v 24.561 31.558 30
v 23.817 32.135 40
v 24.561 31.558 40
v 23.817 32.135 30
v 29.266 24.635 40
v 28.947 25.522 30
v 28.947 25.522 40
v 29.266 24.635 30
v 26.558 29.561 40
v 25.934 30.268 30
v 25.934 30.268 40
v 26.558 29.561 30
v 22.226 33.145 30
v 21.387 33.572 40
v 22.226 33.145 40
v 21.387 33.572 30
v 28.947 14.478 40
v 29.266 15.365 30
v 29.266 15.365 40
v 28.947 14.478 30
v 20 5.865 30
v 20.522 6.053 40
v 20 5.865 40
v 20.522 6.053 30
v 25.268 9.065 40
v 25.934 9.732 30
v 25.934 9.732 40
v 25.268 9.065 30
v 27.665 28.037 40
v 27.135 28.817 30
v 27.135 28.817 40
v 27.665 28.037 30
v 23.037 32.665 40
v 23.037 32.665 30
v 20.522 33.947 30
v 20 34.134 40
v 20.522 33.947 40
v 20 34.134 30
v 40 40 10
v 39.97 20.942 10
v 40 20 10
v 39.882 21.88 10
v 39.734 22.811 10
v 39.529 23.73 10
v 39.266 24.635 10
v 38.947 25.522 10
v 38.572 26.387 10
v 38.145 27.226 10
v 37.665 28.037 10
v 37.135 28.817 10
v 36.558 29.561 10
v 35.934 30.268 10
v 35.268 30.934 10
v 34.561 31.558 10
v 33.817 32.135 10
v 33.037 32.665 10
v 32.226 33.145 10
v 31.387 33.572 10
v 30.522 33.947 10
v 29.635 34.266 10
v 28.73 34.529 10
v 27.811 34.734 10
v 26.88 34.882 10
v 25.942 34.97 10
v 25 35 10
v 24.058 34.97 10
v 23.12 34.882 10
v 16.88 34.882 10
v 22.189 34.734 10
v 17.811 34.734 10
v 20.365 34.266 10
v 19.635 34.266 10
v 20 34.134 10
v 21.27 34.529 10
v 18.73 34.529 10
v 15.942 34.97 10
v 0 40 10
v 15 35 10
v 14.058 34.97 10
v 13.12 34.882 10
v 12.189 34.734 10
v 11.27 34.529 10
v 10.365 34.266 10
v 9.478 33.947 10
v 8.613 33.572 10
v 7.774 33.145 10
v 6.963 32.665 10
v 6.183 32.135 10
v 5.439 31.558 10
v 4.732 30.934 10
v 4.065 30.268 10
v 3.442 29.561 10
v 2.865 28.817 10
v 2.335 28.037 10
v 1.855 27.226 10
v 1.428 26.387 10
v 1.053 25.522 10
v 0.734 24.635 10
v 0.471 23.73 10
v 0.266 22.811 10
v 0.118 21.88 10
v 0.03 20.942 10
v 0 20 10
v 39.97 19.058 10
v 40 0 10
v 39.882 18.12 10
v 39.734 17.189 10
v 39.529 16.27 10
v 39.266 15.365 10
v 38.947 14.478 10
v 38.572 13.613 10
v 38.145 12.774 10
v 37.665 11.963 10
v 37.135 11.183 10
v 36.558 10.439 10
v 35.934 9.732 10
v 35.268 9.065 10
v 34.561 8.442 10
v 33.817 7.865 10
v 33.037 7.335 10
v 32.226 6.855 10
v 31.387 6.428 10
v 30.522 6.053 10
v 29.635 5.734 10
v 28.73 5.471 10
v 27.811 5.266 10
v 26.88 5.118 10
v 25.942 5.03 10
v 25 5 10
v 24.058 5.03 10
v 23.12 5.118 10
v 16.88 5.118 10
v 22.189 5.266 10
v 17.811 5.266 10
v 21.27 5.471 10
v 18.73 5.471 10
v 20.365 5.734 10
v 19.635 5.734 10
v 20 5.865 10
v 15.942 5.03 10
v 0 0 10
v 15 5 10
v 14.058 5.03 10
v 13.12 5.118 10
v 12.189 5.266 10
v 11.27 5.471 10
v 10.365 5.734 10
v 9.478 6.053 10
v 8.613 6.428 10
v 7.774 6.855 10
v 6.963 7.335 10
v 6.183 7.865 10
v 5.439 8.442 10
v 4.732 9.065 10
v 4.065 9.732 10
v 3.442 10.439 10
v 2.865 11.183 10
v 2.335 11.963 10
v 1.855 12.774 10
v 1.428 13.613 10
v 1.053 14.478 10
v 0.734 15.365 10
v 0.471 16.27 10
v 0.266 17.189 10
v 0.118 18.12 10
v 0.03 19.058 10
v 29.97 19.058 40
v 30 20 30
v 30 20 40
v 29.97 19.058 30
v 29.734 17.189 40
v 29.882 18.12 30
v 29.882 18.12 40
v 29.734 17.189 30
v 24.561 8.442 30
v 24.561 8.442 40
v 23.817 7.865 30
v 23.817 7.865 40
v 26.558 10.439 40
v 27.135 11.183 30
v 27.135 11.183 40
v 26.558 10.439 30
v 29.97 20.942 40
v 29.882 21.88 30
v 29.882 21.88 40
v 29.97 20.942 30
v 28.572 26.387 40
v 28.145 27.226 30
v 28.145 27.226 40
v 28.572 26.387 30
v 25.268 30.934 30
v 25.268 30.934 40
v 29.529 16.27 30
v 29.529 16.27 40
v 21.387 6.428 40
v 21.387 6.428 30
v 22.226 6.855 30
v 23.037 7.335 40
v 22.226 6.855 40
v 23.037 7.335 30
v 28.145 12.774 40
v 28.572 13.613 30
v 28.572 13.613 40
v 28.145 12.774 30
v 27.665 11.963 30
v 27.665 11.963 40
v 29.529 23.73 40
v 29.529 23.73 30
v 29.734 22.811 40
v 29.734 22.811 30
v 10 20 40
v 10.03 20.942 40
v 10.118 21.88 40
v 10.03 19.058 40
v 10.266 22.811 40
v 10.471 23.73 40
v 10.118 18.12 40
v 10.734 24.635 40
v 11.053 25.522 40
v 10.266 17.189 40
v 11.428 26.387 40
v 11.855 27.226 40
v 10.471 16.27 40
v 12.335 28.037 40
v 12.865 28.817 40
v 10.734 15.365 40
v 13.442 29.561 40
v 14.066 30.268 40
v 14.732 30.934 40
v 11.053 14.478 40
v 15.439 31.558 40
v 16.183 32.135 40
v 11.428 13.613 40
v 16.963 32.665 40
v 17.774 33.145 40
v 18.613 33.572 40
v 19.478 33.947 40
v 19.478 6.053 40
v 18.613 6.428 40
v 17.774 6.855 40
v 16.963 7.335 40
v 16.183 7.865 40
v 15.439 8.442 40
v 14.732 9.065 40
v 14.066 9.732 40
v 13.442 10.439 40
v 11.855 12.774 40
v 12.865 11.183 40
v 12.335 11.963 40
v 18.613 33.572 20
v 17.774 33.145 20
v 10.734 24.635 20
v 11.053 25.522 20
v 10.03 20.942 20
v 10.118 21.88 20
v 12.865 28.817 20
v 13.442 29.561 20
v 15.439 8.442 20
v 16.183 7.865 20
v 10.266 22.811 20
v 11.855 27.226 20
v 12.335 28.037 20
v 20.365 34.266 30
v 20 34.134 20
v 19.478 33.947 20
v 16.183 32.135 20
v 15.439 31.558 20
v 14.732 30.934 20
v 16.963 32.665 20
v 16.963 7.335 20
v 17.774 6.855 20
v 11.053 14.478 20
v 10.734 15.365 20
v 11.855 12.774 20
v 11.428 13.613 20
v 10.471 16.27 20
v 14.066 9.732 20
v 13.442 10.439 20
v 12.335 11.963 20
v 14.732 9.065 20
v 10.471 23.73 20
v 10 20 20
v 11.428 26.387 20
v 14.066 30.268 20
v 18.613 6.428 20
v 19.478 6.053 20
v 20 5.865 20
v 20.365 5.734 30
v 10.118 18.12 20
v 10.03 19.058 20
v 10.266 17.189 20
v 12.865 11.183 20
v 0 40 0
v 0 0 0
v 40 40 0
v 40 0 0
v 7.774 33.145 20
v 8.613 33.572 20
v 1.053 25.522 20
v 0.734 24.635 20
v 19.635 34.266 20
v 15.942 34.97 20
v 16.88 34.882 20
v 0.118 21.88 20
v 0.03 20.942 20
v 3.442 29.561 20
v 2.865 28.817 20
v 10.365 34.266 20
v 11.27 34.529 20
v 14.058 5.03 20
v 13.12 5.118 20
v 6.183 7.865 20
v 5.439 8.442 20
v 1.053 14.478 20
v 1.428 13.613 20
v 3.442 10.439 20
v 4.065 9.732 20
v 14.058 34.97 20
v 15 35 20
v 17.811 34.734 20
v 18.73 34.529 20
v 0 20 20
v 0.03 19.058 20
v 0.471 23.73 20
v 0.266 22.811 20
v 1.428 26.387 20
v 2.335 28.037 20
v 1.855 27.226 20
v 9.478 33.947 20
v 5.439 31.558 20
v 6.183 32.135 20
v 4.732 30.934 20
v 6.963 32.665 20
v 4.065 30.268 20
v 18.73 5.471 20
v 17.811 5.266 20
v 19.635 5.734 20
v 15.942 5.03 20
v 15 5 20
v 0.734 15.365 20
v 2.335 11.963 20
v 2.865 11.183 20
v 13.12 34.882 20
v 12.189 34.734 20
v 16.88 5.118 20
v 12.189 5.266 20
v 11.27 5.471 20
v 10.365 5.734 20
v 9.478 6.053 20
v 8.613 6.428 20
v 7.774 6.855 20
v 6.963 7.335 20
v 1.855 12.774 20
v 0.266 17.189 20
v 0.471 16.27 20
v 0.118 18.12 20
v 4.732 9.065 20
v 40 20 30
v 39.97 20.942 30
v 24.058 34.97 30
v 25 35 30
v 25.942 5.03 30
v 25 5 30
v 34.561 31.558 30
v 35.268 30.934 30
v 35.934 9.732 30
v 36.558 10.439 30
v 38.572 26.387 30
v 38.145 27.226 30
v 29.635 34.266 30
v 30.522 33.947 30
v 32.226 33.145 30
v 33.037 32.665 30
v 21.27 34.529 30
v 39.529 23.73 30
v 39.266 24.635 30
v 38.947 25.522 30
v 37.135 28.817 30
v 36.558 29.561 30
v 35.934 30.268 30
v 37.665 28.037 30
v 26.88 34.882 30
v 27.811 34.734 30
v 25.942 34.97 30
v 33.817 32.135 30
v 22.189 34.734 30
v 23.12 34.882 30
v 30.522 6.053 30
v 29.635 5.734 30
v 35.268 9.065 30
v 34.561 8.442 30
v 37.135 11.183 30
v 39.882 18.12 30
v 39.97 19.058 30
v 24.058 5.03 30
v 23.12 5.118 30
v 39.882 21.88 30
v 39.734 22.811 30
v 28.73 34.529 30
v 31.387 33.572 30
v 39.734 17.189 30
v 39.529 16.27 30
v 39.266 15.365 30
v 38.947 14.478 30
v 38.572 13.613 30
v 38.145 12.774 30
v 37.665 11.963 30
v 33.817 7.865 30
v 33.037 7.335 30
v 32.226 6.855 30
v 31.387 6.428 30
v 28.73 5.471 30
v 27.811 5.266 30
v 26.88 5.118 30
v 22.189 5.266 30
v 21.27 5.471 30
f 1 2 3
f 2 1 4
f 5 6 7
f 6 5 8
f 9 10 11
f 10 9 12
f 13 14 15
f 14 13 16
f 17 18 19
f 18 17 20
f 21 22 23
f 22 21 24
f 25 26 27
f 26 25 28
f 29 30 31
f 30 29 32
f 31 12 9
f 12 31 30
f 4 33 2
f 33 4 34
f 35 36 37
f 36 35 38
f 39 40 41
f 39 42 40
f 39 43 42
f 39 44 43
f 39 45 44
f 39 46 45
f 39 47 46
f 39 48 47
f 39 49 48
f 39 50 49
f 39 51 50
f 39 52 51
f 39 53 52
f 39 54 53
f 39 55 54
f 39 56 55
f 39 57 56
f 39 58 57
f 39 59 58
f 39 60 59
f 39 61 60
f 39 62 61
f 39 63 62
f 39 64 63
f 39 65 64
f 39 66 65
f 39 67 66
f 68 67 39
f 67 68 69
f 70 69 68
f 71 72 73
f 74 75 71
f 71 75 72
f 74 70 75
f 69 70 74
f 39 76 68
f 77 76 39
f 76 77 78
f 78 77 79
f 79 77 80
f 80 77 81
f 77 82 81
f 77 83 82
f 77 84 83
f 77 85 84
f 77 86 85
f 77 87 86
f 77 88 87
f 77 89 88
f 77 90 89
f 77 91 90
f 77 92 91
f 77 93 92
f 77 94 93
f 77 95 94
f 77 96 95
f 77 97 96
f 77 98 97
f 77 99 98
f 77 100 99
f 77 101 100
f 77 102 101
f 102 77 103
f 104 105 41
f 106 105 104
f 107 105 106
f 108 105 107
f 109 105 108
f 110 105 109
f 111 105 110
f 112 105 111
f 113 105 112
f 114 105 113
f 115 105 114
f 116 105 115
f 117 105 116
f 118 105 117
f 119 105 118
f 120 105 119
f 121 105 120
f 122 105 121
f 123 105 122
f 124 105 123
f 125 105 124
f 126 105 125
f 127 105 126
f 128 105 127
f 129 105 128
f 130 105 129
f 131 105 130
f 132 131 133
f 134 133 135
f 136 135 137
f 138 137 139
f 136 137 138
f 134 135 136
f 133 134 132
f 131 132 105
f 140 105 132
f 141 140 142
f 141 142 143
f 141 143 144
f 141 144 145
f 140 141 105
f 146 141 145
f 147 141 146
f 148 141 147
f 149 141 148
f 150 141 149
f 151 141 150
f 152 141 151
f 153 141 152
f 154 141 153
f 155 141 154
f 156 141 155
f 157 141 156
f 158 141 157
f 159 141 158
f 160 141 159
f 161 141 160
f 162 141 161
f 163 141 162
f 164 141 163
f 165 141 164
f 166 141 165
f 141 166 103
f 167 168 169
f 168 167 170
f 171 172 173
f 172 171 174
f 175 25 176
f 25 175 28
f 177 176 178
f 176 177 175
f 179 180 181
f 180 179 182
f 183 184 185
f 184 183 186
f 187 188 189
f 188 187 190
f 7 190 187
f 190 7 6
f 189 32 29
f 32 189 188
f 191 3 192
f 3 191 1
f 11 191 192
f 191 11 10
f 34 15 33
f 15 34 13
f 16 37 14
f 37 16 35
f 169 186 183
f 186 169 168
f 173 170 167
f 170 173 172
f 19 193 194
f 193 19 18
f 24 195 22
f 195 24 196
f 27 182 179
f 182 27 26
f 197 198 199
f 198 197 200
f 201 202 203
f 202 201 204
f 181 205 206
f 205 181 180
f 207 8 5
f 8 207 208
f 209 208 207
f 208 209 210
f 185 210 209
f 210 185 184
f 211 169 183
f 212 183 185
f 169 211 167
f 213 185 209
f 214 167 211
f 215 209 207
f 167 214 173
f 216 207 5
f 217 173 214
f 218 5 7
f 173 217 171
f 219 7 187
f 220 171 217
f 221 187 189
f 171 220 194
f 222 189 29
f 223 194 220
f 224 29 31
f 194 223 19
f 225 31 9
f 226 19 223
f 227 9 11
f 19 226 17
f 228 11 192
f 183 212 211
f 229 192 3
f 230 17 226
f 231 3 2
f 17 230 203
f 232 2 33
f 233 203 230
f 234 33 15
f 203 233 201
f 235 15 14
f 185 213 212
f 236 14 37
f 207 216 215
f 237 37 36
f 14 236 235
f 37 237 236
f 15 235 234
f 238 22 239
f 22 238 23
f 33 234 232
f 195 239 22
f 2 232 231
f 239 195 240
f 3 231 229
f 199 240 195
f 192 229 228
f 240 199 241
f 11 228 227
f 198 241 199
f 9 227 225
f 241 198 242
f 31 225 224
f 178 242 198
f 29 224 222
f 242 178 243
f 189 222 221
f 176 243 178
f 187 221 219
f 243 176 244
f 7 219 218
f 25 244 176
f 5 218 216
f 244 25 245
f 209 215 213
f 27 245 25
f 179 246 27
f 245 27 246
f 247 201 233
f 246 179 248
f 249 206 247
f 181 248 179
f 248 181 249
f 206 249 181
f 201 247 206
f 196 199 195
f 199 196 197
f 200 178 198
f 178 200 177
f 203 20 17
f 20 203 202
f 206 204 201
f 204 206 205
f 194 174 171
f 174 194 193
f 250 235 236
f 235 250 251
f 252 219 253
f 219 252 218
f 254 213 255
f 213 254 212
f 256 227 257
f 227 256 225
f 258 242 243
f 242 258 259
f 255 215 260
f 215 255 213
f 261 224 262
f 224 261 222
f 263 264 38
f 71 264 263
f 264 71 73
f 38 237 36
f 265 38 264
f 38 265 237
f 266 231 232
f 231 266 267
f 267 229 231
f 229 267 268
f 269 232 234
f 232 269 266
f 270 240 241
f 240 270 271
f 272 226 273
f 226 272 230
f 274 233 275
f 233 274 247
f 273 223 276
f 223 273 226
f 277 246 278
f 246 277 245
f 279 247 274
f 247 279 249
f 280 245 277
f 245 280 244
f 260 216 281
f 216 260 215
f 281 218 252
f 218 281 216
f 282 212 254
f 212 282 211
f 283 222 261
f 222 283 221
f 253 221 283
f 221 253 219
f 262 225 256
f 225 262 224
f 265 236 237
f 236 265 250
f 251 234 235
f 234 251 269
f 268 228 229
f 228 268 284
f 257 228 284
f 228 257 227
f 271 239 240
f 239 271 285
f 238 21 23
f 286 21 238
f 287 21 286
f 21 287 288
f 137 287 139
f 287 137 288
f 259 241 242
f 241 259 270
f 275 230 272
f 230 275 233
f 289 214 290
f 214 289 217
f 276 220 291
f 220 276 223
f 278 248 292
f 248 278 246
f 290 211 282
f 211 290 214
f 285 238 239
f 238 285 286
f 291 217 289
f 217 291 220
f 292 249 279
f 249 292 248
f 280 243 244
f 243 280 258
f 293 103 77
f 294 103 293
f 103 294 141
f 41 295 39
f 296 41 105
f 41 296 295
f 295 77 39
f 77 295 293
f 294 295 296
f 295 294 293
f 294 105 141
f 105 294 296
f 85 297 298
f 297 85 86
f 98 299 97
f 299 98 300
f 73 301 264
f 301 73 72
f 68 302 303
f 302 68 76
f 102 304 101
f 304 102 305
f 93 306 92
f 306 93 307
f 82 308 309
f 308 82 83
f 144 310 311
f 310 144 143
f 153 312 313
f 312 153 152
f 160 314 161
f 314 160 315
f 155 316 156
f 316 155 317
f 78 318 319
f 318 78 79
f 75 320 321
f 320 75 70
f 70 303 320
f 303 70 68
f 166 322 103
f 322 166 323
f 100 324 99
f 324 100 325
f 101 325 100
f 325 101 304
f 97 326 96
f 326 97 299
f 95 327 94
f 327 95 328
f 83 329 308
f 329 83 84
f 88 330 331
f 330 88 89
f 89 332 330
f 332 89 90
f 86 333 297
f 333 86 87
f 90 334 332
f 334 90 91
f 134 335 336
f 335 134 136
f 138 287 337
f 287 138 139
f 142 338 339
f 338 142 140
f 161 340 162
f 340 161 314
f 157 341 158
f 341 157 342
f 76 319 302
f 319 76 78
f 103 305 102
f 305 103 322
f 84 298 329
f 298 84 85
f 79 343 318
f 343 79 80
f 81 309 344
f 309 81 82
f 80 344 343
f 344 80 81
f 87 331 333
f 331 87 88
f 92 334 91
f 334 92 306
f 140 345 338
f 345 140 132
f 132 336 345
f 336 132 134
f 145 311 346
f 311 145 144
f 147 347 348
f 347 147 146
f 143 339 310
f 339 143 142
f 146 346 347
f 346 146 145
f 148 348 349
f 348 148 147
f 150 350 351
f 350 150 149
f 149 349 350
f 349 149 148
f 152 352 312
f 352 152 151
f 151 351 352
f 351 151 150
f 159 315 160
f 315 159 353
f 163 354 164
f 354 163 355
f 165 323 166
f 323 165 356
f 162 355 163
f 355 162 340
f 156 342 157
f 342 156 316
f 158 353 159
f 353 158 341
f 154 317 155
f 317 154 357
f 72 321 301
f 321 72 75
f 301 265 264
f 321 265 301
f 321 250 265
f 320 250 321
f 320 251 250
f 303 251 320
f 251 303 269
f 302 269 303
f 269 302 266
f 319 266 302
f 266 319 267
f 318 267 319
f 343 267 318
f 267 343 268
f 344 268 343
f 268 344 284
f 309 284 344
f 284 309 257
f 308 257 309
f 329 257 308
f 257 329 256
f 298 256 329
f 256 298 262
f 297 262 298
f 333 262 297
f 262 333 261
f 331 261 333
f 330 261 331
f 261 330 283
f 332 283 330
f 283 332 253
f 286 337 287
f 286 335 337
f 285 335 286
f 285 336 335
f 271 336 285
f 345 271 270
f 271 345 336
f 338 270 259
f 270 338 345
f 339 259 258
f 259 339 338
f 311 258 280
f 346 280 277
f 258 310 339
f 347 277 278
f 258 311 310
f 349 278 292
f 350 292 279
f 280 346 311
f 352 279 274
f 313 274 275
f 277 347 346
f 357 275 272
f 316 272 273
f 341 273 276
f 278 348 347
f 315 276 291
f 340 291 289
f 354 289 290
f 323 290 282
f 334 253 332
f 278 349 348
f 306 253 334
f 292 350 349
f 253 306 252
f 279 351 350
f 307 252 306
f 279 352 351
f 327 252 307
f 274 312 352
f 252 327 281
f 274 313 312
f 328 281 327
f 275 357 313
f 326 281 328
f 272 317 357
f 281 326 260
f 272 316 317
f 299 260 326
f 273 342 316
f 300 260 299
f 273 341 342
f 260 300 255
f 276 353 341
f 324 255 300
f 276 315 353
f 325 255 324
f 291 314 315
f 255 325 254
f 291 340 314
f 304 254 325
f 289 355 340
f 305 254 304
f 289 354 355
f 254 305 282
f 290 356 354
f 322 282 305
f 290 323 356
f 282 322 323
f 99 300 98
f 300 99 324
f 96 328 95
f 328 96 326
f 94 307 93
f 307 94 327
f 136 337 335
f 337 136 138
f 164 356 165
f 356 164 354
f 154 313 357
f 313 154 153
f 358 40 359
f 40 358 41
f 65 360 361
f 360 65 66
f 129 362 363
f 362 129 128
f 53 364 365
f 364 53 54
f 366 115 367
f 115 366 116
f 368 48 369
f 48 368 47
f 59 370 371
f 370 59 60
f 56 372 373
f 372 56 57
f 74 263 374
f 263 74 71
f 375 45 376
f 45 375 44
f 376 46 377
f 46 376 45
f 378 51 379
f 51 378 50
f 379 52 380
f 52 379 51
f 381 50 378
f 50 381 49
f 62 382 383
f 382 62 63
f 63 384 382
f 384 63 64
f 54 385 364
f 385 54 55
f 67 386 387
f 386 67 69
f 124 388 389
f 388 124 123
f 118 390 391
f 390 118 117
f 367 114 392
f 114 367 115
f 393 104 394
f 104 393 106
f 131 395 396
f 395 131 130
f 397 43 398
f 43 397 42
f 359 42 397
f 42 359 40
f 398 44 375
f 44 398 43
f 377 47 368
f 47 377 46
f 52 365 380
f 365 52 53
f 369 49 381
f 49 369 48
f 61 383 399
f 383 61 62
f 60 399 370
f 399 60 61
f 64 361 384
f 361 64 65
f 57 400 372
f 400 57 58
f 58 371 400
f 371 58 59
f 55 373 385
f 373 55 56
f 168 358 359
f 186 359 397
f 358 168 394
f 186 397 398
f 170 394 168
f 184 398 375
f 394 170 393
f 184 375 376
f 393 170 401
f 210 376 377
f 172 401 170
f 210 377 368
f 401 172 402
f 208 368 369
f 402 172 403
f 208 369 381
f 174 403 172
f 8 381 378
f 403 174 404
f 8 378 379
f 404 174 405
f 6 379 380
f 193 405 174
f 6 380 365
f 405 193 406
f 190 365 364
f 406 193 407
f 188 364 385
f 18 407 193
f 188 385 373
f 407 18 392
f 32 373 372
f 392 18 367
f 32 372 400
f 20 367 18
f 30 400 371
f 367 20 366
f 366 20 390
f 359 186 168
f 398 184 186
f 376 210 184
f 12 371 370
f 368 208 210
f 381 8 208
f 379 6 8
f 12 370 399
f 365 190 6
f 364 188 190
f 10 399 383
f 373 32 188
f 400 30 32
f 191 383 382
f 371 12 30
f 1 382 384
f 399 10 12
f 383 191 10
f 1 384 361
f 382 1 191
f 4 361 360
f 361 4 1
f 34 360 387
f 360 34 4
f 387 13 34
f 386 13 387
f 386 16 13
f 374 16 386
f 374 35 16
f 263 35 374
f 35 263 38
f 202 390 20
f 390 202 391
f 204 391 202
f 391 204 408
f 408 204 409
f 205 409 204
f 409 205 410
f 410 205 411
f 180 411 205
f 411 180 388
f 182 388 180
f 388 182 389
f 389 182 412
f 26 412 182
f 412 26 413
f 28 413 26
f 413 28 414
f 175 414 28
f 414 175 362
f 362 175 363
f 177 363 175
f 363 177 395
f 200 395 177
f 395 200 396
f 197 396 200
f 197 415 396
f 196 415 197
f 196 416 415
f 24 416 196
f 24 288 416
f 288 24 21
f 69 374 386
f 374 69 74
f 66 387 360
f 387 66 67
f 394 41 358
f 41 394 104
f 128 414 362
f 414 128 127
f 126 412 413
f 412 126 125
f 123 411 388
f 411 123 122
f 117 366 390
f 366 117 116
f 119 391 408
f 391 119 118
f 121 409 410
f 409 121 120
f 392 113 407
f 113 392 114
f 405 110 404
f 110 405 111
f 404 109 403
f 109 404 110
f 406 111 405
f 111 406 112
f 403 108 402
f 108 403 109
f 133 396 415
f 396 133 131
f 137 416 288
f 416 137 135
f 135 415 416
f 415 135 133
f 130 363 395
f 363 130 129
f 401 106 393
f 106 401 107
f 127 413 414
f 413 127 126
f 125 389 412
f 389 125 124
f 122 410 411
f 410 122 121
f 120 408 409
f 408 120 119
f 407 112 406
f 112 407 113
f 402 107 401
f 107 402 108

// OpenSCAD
cube([40, 40, 10], center=false);
translate([15,20,10])
cylinder (r=15,h=10,$fn=100);
translate([25,20,10])
cylinder (r=15,h=20,$fn=100);
intersection(){
    translate([15,20,10])
cylinder (r=15,h=30,$fn=100);
translate([25,20,10])
cylinder (r=15,h=30,$fn=100);
}
